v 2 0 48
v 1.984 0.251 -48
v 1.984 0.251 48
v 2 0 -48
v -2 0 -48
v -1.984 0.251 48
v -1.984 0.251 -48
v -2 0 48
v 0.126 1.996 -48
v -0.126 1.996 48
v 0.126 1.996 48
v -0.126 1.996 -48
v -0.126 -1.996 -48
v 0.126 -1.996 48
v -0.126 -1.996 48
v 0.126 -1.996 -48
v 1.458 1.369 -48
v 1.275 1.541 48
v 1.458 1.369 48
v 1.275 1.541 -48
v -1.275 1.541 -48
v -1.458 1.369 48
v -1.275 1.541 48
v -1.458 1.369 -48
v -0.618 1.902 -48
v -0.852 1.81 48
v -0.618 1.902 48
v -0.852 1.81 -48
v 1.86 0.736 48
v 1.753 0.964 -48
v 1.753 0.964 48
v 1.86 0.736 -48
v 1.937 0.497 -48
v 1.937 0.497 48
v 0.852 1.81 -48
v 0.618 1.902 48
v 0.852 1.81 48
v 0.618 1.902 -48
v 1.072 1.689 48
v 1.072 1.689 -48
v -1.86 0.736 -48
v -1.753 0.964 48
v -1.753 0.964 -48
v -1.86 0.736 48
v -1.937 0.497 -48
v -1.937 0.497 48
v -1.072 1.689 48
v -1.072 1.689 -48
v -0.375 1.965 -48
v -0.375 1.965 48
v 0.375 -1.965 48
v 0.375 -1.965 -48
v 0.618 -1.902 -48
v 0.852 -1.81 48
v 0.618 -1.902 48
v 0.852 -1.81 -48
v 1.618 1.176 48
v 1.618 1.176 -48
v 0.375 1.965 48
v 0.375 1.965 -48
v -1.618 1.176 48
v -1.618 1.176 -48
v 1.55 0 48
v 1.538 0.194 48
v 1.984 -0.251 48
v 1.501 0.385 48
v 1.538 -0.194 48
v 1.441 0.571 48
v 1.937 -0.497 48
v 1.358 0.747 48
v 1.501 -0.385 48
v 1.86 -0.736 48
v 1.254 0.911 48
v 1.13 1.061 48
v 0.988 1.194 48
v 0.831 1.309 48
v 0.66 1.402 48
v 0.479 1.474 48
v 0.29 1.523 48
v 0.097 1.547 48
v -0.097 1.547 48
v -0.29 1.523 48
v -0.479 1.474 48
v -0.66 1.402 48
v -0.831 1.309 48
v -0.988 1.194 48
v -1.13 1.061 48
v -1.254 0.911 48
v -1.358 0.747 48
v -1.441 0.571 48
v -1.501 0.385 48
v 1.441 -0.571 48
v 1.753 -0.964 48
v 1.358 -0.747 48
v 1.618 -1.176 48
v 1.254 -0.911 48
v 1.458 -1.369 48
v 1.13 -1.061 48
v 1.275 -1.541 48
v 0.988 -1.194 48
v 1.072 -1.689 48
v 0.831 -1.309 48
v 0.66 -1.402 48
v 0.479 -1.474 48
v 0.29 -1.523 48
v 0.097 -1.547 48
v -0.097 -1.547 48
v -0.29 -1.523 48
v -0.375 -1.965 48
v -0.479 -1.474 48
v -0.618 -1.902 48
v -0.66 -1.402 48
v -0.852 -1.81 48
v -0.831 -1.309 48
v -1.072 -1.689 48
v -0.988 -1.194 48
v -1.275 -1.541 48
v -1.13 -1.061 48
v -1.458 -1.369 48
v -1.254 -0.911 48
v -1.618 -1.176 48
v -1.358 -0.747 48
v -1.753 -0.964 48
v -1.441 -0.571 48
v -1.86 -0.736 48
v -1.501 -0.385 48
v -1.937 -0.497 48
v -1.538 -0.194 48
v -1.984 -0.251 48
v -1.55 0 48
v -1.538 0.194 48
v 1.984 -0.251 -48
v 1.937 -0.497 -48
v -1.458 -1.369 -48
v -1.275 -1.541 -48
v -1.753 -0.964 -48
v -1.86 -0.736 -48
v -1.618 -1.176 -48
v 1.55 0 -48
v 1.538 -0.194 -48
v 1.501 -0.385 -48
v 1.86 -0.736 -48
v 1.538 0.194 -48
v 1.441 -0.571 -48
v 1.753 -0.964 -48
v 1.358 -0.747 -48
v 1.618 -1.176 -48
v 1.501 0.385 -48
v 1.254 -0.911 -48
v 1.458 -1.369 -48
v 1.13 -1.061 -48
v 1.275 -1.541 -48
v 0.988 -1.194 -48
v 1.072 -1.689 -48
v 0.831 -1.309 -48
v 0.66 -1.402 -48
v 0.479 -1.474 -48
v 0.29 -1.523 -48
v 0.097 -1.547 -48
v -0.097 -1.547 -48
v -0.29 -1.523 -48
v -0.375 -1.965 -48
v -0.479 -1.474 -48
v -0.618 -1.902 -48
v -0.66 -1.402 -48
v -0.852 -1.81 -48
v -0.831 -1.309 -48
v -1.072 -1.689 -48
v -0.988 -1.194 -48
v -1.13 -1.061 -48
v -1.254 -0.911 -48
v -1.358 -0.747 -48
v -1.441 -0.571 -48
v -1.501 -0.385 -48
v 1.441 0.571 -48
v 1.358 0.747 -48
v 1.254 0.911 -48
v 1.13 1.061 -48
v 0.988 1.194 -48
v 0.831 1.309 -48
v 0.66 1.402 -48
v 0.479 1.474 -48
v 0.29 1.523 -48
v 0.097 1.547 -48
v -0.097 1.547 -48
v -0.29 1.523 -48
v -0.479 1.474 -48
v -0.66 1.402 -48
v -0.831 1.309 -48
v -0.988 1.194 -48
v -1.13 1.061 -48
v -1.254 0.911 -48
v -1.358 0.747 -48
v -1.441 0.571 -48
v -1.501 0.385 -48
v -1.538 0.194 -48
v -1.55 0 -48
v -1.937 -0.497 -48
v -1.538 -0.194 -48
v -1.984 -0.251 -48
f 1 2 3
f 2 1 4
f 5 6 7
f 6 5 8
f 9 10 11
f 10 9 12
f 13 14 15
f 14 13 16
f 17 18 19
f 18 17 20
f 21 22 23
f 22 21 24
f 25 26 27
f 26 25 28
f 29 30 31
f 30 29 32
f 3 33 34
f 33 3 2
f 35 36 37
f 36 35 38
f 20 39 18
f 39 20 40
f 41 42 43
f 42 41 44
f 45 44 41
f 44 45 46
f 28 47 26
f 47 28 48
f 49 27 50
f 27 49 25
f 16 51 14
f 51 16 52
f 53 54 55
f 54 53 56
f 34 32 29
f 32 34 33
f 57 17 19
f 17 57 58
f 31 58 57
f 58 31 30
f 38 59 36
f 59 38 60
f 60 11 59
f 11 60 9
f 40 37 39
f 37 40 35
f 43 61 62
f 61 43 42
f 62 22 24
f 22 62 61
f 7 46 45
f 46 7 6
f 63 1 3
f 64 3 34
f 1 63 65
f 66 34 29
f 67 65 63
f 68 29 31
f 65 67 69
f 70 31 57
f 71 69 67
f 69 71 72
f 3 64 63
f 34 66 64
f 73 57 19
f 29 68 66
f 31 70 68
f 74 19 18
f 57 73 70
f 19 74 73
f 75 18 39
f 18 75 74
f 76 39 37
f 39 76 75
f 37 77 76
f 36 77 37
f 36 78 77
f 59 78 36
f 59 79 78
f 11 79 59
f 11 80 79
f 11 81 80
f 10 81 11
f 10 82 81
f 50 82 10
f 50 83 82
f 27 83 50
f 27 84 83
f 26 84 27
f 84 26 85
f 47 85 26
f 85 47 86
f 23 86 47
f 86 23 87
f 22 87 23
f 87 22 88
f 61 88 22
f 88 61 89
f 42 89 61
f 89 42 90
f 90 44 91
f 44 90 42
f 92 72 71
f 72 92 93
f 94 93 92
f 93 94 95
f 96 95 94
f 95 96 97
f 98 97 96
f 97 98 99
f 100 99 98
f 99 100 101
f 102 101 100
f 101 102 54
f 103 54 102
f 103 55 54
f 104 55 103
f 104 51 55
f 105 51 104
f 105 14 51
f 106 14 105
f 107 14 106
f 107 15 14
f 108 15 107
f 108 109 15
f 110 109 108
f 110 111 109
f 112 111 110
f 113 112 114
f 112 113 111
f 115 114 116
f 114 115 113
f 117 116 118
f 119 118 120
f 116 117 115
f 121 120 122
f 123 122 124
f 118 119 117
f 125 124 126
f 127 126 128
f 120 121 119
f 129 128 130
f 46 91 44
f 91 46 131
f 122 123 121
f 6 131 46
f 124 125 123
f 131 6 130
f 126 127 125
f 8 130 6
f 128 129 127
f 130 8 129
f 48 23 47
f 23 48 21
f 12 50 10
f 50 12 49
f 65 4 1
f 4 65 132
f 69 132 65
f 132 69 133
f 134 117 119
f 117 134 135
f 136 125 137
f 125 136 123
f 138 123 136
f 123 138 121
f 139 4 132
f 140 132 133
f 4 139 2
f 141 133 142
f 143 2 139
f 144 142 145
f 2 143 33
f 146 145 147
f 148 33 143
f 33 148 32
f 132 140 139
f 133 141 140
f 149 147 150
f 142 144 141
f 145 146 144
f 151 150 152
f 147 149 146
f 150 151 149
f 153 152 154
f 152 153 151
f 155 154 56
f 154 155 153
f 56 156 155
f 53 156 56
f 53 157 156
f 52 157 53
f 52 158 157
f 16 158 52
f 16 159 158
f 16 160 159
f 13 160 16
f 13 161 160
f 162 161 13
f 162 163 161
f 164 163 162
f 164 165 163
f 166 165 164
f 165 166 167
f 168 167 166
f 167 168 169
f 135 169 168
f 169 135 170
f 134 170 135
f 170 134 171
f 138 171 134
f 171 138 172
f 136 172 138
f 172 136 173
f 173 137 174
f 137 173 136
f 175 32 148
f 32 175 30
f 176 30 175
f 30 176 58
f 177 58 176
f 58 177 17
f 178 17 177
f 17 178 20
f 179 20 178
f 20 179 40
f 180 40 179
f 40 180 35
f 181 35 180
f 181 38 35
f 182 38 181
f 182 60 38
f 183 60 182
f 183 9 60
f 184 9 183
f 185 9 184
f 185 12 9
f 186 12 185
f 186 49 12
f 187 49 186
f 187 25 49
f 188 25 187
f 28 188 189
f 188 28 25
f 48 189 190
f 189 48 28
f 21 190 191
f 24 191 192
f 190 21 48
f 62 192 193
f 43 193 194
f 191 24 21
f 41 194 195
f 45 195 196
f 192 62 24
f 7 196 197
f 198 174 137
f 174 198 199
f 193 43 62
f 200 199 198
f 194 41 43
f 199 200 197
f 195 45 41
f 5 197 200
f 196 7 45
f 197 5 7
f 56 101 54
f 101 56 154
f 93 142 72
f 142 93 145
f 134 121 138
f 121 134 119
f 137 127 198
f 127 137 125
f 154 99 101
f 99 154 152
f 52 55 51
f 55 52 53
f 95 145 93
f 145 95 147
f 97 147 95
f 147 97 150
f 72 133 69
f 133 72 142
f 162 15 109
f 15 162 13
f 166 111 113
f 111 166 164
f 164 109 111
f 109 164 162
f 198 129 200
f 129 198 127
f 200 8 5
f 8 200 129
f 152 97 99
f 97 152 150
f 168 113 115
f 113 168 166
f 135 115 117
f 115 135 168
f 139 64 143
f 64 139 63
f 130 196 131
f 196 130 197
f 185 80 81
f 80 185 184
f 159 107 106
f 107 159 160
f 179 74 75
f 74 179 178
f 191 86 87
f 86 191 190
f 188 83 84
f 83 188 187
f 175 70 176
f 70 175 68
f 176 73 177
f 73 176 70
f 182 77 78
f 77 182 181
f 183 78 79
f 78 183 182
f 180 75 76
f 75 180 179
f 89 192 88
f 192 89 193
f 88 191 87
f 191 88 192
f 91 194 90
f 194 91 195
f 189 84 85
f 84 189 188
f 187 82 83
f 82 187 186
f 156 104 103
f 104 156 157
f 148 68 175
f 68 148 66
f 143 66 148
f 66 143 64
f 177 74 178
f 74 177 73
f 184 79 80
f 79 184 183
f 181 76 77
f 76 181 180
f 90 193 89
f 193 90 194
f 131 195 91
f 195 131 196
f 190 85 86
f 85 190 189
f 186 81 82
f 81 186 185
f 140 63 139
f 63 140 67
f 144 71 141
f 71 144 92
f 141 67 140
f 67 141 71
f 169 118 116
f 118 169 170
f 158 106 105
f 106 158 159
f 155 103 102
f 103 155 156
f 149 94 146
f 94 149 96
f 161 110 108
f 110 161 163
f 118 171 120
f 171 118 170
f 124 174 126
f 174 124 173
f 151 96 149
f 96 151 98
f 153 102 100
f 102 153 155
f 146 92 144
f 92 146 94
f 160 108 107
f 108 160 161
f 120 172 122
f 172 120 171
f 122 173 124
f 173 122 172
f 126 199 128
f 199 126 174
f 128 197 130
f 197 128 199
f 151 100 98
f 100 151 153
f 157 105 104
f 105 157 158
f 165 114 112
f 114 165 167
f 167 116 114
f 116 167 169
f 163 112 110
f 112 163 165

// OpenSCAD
$fn = 50;


difference() {
	union() {
		translate(v = [0, 0, -48.0000000000]) {
			cylinder(h = 96, r = 2.0000000000);
		}
	}
	union() {
		translate(v = [0, 0, -100.0000000000]) {
			cylinder(h = 200, r = 1.5500000000);
		}
	}
}
